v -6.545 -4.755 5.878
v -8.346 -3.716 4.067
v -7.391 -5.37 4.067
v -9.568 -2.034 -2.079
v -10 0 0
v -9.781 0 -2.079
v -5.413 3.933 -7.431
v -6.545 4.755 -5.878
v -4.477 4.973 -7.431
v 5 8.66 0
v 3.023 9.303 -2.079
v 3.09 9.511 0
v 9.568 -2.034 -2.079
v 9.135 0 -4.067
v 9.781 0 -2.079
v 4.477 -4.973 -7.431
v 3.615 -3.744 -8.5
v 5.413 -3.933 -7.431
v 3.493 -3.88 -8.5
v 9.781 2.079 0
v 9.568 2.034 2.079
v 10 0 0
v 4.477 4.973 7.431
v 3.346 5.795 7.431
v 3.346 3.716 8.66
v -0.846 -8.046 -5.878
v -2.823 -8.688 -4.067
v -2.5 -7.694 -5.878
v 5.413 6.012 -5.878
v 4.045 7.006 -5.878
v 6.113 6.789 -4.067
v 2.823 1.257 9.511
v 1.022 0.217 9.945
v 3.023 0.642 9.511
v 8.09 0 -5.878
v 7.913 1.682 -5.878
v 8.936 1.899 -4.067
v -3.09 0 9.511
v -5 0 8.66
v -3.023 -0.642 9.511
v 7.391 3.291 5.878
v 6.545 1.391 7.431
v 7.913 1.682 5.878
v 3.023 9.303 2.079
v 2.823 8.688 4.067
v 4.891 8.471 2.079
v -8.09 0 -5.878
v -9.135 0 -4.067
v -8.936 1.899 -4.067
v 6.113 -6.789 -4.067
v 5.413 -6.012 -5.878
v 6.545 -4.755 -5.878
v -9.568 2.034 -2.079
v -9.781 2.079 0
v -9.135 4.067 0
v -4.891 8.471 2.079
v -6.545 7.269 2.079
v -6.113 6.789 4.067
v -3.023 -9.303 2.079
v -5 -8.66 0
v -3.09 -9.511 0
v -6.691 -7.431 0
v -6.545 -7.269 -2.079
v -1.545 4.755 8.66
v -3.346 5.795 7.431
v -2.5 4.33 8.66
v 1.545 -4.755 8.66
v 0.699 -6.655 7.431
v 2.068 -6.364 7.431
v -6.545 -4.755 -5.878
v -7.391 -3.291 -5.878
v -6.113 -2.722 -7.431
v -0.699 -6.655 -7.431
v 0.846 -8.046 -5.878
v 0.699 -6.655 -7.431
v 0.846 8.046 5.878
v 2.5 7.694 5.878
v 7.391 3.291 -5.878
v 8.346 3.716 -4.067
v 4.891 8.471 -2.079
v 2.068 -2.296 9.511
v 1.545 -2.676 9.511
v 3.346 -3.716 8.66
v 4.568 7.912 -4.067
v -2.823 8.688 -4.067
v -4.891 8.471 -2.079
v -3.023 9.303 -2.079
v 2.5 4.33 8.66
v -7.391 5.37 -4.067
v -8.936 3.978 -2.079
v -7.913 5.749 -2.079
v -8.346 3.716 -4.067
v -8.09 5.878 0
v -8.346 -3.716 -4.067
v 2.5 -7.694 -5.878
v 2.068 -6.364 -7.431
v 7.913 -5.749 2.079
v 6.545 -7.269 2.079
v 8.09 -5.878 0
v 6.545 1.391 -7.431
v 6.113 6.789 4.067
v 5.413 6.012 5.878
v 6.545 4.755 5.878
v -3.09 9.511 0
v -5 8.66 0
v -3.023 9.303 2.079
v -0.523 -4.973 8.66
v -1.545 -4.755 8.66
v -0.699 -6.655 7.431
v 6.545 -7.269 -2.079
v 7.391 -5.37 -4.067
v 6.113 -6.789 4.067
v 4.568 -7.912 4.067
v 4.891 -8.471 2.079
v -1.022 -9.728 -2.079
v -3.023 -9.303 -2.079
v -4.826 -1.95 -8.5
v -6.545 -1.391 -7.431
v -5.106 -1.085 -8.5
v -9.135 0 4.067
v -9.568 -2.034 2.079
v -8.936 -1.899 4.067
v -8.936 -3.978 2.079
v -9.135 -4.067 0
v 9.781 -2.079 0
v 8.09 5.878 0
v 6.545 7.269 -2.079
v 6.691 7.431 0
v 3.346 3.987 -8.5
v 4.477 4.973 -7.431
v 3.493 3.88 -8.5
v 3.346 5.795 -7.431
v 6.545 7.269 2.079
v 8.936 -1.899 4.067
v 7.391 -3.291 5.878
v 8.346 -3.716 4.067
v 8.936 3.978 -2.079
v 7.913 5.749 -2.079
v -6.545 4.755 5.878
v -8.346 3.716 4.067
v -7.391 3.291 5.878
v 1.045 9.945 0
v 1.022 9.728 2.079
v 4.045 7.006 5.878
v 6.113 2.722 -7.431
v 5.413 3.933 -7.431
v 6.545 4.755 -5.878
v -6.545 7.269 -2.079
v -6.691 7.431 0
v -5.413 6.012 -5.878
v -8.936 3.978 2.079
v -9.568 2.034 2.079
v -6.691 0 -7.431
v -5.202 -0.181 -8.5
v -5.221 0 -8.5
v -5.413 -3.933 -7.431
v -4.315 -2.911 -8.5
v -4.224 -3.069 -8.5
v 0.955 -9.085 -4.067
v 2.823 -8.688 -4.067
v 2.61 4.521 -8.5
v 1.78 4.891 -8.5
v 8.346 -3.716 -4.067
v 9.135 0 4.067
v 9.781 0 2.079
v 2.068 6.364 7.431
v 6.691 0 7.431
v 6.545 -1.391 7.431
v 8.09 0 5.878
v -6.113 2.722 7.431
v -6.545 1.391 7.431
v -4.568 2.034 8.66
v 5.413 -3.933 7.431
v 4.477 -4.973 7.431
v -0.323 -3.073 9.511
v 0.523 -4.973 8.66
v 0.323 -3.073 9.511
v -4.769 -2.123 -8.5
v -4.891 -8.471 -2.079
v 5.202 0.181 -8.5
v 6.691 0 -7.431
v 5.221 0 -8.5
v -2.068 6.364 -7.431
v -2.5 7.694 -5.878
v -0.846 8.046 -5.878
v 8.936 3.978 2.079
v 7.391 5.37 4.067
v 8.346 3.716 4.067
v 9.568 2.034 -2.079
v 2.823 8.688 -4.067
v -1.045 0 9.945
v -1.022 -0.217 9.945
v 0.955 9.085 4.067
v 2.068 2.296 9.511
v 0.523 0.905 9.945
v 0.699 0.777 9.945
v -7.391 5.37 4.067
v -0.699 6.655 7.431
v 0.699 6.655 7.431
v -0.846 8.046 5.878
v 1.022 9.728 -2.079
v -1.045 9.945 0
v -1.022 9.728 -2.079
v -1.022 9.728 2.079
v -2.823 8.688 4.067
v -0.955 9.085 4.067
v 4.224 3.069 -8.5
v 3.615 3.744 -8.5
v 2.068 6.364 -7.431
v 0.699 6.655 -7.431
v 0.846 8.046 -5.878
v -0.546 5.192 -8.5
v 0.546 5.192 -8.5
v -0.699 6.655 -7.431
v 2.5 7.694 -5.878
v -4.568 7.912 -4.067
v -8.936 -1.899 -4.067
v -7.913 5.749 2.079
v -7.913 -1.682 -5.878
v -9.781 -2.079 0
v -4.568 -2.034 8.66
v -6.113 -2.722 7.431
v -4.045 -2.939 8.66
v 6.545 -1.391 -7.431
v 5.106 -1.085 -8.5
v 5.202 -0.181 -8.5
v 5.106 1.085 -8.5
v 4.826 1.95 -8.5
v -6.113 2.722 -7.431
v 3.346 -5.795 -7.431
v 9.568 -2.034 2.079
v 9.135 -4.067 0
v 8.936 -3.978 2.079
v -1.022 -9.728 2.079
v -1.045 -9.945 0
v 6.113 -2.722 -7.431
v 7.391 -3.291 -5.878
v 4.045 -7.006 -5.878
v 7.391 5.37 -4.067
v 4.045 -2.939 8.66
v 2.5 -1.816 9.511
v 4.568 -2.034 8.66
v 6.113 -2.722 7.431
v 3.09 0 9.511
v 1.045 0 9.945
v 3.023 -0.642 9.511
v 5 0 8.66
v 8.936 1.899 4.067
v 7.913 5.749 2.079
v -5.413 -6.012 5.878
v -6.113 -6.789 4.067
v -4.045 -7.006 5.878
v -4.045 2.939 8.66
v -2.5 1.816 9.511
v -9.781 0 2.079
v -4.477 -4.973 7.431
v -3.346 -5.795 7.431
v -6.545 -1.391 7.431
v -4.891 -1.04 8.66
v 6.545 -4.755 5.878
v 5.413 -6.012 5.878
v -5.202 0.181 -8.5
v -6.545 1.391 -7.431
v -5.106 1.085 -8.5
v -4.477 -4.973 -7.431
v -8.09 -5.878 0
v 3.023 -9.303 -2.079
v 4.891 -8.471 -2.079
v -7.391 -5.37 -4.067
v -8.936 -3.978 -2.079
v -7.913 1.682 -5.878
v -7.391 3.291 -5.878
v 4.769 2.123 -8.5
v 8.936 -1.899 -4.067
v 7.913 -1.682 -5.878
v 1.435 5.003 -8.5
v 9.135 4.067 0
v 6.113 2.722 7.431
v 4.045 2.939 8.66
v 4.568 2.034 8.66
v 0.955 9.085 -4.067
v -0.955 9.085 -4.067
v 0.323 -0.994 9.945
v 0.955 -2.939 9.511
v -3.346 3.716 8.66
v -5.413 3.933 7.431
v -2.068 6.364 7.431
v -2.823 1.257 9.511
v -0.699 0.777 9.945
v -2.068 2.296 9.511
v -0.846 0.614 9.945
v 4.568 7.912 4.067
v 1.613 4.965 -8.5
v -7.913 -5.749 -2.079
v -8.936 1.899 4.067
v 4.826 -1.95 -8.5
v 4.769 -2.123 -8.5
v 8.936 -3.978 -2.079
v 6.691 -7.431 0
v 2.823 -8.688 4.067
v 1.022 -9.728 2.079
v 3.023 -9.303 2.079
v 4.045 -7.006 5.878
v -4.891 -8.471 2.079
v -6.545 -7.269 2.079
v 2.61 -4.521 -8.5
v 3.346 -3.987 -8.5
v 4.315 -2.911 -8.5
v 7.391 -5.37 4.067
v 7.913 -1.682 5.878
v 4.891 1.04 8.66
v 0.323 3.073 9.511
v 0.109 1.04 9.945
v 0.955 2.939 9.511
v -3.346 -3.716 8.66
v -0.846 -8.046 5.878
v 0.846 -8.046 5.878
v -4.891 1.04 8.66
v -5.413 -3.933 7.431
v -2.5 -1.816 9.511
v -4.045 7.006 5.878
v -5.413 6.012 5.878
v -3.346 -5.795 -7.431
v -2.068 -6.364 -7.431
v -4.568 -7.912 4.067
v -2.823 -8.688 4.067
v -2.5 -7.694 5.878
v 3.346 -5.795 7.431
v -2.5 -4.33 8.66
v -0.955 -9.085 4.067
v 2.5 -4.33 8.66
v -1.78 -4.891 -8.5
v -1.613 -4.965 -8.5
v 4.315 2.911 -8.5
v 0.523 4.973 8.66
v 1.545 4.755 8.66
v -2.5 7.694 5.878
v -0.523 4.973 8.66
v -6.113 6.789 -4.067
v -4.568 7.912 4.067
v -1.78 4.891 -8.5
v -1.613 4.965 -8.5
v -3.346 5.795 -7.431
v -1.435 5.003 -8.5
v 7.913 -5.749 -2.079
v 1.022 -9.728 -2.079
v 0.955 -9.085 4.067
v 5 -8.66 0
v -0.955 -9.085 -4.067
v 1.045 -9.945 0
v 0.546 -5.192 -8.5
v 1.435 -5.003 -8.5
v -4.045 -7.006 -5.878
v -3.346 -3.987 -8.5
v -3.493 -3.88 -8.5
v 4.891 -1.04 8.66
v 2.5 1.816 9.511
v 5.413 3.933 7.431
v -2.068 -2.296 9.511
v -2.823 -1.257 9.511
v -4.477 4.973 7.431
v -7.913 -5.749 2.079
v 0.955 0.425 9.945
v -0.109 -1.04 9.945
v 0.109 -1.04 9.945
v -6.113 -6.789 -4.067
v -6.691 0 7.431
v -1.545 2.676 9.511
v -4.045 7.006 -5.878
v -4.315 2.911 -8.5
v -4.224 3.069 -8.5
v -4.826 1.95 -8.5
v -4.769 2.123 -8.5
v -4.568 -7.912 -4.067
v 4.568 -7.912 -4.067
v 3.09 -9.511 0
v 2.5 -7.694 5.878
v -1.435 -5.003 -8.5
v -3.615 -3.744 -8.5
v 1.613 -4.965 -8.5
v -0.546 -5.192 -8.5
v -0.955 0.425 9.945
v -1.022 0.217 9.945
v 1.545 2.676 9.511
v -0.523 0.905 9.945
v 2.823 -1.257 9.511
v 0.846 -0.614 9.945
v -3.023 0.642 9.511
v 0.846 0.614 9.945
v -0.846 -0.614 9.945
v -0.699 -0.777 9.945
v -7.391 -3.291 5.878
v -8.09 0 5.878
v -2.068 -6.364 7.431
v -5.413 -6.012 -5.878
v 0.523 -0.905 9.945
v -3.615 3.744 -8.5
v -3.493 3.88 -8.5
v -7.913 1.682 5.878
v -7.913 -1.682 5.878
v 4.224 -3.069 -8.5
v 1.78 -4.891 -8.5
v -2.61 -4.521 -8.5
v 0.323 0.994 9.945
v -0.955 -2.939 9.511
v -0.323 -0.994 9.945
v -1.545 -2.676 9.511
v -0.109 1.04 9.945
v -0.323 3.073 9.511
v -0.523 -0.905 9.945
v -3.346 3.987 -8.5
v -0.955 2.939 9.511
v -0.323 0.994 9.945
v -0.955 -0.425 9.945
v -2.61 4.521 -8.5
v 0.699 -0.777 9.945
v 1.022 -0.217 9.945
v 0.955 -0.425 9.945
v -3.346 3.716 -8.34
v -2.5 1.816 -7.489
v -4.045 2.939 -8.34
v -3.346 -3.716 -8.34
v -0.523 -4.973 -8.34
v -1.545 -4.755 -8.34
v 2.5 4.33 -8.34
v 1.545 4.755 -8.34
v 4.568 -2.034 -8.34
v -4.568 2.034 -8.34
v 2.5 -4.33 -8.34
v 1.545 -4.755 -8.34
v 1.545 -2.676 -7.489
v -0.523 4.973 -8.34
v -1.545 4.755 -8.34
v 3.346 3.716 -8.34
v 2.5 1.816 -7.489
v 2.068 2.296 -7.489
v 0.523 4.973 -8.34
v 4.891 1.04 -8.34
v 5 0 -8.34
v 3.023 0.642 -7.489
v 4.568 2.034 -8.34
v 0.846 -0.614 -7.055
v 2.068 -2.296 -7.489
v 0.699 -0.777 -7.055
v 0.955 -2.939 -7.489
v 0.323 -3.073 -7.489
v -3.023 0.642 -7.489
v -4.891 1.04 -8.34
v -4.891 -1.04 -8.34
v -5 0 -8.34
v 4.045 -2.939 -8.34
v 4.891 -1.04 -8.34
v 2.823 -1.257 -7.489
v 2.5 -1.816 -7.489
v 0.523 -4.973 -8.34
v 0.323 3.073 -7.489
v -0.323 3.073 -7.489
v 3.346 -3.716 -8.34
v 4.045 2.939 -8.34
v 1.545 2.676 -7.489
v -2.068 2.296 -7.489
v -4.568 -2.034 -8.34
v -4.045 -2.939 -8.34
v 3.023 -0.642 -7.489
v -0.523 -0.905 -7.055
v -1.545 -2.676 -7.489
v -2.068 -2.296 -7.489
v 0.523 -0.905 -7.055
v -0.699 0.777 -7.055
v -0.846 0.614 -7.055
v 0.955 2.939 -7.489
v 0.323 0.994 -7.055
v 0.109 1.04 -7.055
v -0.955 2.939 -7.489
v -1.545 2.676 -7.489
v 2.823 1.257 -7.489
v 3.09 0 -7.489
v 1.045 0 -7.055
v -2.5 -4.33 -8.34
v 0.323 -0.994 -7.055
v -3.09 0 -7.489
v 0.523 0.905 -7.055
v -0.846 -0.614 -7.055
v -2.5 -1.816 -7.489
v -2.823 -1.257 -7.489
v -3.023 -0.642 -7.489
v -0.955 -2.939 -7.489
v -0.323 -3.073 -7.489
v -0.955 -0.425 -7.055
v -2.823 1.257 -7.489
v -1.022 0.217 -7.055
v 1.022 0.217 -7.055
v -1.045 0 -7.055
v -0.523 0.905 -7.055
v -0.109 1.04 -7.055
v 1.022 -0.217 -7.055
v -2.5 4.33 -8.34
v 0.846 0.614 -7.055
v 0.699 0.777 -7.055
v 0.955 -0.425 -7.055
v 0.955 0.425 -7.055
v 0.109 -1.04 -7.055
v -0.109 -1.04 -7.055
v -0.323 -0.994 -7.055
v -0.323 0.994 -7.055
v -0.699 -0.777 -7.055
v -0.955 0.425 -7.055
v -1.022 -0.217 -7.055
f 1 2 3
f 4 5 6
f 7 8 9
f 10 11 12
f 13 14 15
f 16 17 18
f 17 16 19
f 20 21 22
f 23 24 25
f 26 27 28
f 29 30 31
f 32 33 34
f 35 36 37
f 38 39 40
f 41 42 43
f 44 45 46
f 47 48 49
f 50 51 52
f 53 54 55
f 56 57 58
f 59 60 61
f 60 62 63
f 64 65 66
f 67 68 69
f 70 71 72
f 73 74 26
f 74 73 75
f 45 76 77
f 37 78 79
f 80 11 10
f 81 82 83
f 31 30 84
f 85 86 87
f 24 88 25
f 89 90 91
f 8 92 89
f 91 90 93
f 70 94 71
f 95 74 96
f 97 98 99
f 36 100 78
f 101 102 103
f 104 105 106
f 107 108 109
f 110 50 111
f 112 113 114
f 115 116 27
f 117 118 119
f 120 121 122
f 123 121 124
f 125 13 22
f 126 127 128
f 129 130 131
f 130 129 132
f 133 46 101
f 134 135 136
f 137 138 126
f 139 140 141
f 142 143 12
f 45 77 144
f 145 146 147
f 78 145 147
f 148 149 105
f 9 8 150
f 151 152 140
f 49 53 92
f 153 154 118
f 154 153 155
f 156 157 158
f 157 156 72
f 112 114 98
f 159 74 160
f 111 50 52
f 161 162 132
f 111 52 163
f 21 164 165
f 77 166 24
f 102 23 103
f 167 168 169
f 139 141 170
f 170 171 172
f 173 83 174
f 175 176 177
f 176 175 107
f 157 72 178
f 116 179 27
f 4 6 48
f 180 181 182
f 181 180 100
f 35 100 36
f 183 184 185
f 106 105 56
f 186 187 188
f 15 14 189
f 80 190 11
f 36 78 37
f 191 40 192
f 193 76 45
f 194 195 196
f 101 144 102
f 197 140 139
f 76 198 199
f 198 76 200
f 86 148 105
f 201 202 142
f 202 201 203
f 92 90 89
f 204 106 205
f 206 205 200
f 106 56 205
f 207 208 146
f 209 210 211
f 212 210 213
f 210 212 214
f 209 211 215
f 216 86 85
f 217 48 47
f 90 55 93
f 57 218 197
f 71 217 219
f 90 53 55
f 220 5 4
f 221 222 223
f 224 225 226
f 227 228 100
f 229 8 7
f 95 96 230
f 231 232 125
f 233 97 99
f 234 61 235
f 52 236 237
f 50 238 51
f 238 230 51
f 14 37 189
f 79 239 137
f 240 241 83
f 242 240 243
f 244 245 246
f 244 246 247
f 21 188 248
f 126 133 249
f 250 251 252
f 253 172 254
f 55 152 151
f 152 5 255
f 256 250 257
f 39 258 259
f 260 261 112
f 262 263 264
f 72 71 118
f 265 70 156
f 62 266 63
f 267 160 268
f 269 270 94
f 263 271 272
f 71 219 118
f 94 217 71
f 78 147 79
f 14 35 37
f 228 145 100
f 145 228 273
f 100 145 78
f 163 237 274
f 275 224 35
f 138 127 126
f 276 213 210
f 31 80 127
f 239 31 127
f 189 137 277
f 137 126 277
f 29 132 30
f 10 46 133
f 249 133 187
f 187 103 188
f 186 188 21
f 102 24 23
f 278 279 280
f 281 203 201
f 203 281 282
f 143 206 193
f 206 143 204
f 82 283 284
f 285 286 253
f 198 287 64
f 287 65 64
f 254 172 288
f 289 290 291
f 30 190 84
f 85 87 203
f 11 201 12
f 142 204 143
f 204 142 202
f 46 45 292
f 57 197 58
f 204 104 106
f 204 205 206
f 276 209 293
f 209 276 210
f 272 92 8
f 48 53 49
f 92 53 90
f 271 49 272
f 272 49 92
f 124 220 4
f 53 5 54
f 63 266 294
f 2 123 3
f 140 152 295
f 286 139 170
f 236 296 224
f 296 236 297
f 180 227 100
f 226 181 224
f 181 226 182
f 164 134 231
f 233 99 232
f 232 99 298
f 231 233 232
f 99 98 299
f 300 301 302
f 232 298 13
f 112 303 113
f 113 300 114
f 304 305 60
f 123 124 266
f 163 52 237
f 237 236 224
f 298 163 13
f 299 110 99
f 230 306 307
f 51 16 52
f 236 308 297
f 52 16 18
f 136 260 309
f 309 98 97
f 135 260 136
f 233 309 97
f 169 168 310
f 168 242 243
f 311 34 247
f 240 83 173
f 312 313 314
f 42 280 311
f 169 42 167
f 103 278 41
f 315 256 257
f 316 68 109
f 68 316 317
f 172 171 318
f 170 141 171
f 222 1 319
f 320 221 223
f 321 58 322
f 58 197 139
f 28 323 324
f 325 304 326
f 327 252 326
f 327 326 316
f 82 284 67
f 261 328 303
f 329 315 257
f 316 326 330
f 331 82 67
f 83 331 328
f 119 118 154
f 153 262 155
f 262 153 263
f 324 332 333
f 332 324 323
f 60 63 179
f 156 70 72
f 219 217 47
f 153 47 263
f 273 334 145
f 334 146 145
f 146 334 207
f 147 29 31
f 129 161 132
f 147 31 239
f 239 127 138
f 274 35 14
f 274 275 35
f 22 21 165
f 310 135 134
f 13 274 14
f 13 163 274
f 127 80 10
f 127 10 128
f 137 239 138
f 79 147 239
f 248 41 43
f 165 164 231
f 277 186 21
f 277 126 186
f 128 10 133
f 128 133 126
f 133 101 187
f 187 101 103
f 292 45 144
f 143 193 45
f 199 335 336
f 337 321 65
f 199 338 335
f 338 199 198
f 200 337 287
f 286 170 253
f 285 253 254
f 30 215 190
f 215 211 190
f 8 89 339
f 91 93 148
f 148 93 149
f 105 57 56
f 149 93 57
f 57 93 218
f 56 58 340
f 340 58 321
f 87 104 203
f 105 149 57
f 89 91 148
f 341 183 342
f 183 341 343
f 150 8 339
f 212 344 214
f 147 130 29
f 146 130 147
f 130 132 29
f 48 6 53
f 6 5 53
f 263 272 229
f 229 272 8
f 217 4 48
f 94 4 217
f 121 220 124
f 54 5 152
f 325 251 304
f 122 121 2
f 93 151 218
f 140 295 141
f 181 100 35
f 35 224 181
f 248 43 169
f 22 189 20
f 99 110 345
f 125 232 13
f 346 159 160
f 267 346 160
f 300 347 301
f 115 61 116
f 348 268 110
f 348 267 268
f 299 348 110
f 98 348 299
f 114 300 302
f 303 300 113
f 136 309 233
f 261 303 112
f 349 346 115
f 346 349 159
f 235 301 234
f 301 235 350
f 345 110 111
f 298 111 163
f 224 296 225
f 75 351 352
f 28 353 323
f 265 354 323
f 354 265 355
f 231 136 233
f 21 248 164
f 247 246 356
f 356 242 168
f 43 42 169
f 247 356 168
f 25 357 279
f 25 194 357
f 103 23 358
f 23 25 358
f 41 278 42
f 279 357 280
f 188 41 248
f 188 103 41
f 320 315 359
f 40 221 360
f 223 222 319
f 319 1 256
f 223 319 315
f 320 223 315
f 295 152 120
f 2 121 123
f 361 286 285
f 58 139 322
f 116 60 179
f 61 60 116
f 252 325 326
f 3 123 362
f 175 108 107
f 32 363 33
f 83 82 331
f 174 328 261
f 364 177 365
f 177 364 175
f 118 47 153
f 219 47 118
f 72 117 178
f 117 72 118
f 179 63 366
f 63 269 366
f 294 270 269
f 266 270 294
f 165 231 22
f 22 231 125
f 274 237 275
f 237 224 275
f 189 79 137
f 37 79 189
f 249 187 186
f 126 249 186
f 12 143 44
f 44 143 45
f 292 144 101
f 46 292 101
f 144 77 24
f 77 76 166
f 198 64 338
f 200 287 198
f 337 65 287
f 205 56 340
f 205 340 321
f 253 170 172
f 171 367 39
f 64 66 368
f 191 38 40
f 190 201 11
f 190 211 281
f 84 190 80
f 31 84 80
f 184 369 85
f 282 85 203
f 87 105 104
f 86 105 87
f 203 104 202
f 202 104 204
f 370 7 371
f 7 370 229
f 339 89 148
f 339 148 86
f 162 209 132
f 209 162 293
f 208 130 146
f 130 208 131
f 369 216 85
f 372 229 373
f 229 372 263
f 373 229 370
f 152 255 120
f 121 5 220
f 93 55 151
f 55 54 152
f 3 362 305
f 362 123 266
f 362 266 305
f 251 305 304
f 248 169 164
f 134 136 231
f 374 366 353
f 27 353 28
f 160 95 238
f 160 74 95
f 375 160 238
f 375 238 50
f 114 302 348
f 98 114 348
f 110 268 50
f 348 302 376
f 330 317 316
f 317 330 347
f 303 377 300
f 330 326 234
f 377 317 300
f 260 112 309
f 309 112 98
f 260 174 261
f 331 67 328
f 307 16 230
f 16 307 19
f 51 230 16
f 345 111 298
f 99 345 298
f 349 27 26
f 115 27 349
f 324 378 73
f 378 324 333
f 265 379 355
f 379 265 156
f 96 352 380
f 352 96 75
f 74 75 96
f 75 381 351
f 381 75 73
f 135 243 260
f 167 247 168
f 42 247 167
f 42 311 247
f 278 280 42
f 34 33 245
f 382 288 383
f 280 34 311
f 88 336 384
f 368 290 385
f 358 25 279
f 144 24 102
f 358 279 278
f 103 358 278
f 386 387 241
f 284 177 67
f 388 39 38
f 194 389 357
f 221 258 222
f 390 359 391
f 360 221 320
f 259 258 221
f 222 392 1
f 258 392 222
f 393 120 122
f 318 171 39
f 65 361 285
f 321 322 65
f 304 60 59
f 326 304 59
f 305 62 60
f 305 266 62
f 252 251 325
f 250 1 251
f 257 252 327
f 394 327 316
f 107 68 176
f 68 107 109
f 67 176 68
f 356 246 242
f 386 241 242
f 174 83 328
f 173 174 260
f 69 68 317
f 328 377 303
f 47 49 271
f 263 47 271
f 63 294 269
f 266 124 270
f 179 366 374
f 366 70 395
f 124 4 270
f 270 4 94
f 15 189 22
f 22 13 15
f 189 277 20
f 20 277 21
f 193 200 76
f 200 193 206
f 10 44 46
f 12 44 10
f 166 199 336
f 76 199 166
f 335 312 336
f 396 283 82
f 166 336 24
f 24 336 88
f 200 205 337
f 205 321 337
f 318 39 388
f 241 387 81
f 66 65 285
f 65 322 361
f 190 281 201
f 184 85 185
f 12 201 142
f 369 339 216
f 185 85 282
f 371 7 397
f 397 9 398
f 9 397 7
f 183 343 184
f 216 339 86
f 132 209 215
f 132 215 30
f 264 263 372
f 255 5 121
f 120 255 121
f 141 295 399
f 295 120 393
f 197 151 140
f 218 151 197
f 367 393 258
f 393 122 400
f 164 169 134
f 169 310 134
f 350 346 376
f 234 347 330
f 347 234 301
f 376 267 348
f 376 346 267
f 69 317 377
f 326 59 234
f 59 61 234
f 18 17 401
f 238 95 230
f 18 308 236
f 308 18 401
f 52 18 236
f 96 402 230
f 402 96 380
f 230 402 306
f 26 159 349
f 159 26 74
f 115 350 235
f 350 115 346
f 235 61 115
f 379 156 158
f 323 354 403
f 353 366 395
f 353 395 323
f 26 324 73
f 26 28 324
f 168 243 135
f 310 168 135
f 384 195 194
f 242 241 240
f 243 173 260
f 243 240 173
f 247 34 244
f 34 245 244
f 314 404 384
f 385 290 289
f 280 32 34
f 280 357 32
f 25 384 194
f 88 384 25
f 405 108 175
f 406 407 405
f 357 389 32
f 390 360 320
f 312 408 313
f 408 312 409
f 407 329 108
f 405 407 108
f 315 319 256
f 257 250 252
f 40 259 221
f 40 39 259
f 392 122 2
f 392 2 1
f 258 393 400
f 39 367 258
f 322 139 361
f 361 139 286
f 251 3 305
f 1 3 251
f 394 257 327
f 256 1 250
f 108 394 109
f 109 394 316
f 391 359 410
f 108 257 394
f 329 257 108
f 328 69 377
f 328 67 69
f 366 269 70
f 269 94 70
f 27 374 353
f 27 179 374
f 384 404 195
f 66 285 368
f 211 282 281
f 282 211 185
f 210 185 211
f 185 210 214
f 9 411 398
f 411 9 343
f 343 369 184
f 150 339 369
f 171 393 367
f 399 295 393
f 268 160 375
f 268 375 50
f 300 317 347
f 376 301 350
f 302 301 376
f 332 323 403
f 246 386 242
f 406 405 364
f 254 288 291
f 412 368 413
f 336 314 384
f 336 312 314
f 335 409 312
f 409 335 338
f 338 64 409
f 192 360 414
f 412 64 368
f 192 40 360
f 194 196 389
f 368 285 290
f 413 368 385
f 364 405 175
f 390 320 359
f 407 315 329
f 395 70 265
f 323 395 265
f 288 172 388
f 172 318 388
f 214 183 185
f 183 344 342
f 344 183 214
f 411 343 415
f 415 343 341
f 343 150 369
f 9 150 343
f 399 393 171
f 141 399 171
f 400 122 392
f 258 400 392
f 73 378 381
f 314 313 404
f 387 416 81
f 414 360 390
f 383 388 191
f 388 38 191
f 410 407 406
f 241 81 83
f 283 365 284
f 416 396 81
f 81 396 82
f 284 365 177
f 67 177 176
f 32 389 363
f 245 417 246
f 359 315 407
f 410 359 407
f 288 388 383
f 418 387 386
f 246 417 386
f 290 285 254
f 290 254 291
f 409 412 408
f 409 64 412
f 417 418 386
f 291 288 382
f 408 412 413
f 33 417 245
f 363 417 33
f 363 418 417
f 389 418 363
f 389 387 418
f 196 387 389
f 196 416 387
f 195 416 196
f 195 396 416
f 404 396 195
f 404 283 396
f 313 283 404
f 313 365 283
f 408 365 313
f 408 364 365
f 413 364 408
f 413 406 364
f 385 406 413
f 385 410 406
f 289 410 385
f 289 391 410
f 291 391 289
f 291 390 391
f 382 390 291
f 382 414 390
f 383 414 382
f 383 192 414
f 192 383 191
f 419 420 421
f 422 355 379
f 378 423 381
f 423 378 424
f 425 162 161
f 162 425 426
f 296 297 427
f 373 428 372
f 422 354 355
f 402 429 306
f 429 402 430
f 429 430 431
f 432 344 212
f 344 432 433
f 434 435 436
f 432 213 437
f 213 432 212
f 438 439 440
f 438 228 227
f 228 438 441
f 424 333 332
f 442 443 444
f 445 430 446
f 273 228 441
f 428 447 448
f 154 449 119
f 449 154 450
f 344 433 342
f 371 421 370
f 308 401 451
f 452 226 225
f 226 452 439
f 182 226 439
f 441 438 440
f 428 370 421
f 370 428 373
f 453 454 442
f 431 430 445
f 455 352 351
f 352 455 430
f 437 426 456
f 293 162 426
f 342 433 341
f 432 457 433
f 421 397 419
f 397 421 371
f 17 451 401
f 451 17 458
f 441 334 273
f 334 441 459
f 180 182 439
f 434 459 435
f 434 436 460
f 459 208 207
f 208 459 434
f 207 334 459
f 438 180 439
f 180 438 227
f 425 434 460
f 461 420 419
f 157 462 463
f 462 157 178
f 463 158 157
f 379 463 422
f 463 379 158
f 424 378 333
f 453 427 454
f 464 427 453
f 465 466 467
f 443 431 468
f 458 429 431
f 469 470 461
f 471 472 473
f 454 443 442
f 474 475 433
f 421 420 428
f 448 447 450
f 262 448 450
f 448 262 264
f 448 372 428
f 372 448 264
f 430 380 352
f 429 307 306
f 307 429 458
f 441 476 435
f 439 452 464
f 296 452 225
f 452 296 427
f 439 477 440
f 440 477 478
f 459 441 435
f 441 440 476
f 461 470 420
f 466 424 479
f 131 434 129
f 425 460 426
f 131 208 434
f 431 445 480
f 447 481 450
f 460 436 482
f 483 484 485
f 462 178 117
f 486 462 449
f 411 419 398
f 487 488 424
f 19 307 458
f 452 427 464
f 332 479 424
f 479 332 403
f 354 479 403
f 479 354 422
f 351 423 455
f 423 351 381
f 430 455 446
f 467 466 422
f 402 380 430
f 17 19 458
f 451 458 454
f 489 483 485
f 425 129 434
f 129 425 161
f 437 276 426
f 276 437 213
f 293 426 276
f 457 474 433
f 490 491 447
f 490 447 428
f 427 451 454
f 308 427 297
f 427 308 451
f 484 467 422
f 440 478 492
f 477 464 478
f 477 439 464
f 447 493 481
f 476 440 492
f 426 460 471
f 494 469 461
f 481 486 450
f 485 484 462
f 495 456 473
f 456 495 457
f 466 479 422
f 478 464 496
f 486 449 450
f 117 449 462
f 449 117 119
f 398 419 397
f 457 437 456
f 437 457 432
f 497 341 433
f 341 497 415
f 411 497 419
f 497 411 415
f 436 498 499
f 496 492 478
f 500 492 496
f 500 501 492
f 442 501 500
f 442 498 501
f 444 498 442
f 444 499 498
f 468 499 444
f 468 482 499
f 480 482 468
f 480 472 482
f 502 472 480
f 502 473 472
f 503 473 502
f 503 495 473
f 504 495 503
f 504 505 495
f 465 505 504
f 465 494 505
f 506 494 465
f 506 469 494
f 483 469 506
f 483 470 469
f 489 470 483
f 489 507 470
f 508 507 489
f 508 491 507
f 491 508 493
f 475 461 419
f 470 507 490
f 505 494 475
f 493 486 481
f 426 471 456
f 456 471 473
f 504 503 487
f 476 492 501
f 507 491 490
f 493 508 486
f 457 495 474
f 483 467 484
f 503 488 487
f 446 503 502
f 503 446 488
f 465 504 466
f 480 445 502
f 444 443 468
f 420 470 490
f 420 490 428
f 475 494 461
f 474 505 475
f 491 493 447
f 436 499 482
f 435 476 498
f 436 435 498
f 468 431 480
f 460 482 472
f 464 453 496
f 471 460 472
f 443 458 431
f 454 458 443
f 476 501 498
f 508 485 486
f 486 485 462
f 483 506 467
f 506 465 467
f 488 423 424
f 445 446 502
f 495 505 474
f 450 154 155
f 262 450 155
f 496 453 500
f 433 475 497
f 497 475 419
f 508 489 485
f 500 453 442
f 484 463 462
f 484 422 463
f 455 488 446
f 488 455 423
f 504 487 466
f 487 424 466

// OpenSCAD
rotate([180,0,0])
difference() {
    sphere(r=10);
    translate([0,0,17])
    sphere(r=10);
}
